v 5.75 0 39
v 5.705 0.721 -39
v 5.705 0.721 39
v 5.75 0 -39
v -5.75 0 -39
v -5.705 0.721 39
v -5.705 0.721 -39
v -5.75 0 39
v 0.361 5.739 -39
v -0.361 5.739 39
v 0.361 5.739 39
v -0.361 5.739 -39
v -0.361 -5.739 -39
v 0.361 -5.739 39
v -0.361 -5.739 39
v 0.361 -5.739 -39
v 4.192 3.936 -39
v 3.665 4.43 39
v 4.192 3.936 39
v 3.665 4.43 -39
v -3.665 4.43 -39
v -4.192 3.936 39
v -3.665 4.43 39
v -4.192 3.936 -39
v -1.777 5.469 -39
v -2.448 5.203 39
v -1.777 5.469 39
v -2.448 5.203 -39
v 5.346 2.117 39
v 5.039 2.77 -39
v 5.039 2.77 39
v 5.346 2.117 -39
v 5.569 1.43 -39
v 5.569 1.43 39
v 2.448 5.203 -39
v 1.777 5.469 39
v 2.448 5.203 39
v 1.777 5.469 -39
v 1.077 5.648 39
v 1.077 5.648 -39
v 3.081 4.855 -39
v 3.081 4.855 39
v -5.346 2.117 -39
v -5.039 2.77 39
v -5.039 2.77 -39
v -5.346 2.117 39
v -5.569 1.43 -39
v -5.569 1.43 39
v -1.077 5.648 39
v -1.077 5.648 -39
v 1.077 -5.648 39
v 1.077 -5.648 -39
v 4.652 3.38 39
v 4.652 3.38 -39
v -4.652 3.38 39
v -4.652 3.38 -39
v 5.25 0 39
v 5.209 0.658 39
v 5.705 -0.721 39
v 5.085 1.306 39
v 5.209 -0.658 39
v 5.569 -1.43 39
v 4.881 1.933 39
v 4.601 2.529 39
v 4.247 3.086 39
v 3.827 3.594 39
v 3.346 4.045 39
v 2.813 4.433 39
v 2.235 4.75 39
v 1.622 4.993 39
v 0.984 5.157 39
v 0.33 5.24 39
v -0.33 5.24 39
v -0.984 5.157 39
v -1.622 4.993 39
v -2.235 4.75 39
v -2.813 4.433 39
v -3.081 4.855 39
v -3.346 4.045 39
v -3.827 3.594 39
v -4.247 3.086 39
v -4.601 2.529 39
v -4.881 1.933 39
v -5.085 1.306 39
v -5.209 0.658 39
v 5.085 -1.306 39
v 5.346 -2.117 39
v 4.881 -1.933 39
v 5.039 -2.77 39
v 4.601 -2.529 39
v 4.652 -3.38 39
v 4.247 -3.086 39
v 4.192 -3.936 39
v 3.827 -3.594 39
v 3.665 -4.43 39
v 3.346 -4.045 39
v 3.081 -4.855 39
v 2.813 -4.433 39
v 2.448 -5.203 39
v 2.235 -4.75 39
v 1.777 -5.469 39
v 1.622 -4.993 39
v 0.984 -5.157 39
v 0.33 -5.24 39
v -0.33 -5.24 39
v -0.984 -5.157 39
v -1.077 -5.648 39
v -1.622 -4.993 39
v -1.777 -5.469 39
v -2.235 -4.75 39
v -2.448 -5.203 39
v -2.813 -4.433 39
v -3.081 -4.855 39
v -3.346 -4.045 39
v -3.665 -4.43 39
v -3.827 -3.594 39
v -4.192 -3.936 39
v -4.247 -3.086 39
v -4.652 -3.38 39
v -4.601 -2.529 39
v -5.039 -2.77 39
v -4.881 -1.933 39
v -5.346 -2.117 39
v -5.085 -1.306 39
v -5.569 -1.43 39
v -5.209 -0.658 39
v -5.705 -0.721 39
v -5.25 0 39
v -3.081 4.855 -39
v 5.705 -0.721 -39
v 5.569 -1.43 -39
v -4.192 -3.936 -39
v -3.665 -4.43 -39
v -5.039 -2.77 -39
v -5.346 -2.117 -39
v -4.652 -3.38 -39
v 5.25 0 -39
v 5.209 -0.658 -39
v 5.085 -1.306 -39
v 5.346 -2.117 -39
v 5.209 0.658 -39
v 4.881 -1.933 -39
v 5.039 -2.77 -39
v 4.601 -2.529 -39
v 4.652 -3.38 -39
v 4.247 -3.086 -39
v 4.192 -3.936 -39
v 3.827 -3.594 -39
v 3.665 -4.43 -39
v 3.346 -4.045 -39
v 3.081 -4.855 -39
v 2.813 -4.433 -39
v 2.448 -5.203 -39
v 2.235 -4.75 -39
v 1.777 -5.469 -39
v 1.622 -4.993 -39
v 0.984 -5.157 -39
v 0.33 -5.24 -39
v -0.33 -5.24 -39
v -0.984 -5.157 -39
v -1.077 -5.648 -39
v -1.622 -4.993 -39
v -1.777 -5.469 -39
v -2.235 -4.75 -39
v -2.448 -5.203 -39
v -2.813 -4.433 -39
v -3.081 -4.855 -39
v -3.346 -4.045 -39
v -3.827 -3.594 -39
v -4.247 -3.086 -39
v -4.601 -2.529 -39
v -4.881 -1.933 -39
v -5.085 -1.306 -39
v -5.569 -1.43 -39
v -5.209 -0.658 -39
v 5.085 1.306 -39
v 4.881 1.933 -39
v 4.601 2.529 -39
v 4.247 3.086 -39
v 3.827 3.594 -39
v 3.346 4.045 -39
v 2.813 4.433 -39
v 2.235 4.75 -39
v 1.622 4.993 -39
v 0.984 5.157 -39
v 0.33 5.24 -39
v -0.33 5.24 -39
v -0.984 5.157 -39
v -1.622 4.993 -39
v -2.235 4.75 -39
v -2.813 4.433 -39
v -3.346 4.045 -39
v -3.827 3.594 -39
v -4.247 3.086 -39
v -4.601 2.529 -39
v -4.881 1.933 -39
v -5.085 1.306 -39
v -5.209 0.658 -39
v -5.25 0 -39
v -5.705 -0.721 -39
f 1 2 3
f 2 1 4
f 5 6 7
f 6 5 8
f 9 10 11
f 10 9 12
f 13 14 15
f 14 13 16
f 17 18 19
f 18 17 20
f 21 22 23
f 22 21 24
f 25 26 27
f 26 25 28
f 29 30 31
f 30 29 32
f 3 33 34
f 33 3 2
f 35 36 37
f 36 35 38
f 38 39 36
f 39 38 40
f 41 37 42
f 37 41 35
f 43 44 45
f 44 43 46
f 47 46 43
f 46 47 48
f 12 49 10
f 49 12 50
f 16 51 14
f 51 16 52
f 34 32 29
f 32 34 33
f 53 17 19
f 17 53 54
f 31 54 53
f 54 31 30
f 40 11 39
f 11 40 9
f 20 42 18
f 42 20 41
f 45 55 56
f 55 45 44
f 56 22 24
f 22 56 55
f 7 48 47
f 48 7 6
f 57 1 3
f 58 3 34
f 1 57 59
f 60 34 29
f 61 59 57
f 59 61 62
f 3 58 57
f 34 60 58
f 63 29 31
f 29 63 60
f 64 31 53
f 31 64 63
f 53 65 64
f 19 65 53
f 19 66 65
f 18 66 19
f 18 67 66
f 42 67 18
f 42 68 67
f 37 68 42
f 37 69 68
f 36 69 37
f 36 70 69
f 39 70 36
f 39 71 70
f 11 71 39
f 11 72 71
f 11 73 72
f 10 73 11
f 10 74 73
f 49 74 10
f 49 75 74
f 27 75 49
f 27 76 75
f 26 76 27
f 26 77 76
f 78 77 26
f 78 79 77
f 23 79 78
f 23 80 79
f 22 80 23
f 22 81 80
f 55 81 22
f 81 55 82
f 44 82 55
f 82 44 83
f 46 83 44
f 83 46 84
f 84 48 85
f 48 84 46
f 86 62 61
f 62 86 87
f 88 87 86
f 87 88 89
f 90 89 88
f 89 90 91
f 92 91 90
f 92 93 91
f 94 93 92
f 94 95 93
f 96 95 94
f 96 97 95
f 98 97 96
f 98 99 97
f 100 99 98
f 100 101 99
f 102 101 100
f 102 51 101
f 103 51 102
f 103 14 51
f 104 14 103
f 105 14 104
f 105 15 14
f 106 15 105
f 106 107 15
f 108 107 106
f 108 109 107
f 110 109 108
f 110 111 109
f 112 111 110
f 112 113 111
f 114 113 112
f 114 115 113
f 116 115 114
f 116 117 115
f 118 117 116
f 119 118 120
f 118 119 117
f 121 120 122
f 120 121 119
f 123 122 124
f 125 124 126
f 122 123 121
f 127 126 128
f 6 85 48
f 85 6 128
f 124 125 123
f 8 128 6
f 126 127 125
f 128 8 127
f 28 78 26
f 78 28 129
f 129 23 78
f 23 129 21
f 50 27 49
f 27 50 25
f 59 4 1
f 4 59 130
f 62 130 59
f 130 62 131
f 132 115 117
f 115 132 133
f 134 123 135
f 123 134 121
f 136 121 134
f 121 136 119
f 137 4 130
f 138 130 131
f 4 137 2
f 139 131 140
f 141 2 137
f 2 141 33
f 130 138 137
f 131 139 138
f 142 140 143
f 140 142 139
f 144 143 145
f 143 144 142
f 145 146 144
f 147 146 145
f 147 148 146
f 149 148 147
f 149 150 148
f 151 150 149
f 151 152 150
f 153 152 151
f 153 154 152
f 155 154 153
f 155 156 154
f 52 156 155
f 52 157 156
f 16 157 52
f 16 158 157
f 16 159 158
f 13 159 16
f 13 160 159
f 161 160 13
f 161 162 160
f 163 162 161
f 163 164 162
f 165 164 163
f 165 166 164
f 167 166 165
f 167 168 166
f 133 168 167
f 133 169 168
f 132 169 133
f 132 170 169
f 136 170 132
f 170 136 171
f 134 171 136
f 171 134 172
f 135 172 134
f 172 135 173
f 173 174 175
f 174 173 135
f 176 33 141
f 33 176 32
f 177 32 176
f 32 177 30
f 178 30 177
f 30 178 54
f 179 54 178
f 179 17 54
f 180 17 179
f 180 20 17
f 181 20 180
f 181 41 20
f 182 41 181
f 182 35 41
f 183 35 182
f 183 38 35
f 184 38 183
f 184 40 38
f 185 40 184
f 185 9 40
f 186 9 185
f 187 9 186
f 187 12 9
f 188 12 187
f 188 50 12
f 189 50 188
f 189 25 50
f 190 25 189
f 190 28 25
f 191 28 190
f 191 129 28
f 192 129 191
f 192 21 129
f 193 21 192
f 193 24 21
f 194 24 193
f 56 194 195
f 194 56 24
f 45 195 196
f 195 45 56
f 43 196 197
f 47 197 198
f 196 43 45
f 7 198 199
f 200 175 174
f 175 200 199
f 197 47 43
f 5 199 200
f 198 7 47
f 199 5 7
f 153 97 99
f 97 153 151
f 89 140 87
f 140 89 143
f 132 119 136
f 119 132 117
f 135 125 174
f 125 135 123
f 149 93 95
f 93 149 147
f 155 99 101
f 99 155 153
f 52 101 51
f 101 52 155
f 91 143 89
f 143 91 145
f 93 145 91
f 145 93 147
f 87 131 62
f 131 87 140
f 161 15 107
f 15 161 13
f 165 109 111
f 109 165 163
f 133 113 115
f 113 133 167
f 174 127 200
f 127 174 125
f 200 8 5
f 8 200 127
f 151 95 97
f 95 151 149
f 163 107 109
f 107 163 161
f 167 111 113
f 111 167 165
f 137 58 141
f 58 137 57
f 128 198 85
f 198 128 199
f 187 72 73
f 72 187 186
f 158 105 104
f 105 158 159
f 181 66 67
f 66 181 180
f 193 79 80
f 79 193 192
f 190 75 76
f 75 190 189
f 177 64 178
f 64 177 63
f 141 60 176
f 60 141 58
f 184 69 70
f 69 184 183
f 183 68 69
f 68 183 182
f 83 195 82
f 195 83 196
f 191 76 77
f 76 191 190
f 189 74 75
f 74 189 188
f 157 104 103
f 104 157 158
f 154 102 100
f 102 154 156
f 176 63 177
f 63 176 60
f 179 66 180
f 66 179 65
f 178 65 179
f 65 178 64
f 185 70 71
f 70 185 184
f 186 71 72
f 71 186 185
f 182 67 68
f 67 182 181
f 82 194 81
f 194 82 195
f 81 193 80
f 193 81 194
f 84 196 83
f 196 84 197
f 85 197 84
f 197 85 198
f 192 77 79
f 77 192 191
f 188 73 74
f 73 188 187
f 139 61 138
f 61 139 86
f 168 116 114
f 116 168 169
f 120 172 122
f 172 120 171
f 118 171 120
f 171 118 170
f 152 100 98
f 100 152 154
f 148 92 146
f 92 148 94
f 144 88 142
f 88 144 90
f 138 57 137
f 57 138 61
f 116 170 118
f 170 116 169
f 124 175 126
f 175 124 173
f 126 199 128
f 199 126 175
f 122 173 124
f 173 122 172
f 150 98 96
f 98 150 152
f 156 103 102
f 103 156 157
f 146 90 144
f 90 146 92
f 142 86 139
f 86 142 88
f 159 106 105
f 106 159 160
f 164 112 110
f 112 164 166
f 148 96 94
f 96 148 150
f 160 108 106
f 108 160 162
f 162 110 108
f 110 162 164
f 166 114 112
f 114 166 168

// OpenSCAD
$fn = 50;


difference() {
	union() {
		translate(v = [0, 0, -39.0000000000]) {
			cylinder(h = 78, r = 5.7500000000);
		}
	}
	union() {
		translate(v = [0, 0, -100.0000000000]) {
			cylinder(h = 200, r = 5.2500000000);
		}
	}
}
